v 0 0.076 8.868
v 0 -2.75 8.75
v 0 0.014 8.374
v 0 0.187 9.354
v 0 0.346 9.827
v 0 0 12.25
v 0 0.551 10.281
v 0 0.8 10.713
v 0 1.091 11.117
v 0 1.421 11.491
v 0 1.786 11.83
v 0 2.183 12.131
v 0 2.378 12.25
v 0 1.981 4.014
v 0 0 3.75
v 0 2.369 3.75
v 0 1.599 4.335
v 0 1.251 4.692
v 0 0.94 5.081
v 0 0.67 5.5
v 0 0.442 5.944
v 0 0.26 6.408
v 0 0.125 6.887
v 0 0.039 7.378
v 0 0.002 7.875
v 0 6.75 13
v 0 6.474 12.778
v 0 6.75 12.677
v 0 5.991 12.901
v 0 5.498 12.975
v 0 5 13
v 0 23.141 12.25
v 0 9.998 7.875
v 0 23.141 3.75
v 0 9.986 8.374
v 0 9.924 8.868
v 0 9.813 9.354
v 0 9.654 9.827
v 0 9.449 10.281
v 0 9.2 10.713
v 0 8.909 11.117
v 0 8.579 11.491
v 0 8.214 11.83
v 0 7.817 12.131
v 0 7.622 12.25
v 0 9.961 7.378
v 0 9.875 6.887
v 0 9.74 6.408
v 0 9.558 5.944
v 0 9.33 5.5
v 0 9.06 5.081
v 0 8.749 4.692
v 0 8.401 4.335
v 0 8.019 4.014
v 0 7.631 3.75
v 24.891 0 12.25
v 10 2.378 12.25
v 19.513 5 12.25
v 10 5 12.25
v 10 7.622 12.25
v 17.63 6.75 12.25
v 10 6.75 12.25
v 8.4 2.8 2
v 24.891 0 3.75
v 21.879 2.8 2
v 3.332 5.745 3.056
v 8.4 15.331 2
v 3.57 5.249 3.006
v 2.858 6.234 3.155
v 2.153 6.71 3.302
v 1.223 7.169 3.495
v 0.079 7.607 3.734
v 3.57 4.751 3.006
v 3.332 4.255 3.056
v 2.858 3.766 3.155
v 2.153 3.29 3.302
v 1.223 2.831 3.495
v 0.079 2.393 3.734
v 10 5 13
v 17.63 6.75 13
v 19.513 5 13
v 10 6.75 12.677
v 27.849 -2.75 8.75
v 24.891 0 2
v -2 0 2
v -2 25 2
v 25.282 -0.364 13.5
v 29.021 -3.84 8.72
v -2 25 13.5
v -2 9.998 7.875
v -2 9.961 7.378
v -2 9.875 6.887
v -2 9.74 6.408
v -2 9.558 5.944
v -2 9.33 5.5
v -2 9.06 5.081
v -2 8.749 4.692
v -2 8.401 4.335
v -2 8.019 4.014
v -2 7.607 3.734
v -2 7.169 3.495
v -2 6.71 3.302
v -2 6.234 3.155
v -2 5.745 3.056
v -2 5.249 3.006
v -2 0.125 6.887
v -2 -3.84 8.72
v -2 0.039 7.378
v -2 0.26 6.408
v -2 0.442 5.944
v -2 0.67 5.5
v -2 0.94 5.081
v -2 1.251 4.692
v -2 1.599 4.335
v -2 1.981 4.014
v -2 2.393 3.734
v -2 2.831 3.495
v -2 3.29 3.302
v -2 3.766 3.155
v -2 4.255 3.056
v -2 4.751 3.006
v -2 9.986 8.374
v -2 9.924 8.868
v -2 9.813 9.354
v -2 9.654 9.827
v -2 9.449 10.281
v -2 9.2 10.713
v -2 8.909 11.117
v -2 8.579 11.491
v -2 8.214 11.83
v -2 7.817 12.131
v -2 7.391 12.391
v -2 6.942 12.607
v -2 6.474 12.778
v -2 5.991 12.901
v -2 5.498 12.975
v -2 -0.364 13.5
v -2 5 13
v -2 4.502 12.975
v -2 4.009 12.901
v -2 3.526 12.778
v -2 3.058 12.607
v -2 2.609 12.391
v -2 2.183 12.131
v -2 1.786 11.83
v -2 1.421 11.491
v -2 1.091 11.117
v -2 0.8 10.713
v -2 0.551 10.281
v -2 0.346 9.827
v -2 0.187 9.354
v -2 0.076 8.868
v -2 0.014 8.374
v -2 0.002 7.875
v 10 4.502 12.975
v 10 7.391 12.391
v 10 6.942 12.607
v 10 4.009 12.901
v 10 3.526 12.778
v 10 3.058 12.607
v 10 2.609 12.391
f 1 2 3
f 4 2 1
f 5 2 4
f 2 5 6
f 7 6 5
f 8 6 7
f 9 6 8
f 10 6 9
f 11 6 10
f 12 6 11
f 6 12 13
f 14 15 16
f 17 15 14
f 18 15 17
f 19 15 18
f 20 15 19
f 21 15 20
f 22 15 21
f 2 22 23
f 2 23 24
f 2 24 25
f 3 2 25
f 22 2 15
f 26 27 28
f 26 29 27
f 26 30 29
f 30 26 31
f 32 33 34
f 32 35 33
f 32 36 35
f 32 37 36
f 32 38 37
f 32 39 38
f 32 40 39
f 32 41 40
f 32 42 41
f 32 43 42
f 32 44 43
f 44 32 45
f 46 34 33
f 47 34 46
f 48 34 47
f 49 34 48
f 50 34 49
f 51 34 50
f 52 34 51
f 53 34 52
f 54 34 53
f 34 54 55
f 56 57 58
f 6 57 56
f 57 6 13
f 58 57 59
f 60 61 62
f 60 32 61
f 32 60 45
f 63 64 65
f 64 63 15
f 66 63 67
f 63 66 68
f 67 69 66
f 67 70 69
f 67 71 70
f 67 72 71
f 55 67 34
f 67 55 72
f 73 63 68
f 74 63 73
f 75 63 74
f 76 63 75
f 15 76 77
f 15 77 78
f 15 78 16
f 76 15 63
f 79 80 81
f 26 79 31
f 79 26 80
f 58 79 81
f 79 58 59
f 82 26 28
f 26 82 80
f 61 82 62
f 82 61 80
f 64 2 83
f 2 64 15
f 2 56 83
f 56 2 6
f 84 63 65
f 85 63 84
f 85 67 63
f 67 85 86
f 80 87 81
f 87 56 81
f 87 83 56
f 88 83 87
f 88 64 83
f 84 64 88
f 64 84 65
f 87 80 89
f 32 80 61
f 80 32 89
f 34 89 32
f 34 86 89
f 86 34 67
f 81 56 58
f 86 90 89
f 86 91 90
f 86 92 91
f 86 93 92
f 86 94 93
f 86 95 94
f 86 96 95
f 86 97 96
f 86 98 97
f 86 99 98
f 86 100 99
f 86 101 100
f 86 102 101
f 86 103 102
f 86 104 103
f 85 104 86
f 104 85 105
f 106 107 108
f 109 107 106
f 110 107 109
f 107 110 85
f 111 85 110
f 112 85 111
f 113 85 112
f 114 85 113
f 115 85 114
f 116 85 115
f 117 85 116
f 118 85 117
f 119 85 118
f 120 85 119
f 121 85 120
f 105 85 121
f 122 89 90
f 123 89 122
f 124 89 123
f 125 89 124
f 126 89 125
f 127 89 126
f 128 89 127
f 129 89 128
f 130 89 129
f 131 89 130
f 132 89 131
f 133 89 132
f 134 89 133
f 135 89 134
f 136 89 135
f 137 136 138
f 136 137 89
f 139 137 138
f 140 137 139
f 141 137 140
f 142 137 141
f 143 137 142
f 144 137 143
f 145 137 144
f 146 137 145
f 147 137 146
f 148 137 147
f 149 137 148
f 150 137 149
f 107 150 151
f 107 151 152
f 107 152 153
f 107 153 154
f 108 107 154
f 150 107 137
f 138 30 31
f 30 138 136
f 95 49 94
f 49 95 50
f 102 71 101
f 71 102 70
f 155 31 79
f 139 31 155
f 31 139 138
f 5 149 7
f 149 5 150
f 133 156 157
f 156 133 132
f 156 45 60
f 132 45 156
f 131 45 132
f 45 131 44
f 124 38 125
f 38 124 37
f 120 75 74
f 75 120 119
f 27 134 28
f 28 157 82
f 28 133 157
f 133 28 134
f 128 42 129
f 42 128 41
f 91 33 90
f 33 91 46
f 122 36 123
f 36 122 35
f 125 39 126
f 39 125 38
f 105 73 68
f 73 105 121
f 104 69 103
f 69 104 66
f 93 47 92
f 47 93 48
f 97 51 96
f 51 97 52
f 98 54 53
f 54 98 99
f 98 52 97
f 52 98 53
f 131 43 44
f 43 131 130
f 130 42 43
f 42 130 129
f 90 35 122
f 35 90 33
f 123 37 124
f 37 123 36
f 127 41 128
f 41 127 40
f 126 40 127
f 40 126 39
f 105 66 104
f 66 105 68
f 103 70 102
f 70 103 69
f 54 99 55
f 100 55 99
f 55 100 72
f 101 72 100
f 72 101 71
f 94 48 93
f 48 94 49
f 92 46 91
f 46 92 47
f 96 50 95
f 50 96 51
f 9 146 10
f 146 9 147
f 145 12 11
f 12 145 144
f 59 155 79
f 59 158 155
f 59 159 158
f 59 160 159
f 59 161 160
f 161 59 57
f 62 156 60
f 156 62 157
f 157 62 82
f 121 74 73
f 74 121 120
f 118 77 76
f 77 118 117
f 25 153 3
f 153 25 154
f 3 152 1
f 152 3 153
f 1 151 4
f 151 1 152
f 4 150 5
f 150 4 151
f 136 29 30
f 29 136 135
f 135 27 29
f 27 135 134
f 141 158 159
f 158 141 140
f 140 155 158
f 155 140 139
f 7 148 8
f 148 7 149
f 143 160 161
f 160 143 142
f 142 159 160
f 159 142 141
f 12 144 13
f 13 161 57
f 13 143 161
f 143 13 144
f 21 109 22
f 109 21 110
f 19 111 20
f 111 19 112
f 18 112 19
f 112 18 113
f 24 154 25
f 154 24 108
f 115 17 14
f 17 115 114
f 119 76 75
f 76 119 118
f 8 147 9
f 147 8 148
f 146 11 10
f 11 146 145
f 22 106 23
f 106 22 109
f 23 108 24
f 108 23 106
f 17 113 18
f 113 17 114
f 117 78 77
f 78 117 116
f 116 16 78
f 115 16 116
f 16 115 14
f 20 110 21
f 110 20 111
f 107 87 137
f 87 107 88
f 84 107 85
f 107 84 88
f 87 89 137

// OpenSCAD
$fs = 0.5;
$fa = 1;

exaggeration = 0.5;

bot_thick_z = 12 + exaggeration / 2;
to_infinity = 40;
triangle_inset_y = 6;
triangle_inset_x = 18;
triangle_height_z = 4 - exaggeration / 2;
rubber_stopper_x = 20;
rubber_stopper_y = 1.5 + exaggeration / 2;
rubber_stopper_z = 0.5 + exaggeration / 2;
rubber_stopper_inset_y = 5;
triangle_back_apex_height_above_top = 5;
triangle_back_extension = 2.5 + exaggeration / 2;
port_height_z = bot_thick_z - triangle_height_z - exaggeration;
power_inset_y = 5;
power_plug_radius_addition = 0.75;
clip_margin = 2;

//color([0.7, 0.7, 0.7])
//laptop();



difference() {
    clip_positive();
    laptop();
    
        // Power plug reservation
        translate([10, power_inset_y, port_height_z])
        rotate([0, -90, 0])
        cylinder(r=(bot_thick_z - triangle_height_z) / 2 + power_plug_radius_addition, h=30);
    
    // Top shave
    translate([-5, -3, 10])
rotate([0, 90, 0])
linear_extrude(40)
polygon(points=[[-4, -5], [-4, 3], [7, -5]]);

    // Bottom shave
translate([-5, -3, 7])
rotate([0, 90, 0])
linear_extrude(40)
polygon(points=[[5, -5], [5, 3], [-9, -5]]);
    
    // top z shave
    translate([0, 0, 16])
    cube([100, 100, 5], center=true);

}

module laptop() {
    union() {
        // The body with taper cuts
        difference() {
            
            // The main block
            laptop_principal();
            
            // The cut on the bottom back of the laptop
            translate([0, 0, triangle_height_z])
            rotate([0, 90, 0])
            triangle([triangle_height_z, triangle_inset_y, to_infinity]);
            
            // The cut on the bottom right of the laptop
            mirror([1, 0, 0])
            translate([0, 0, triangle_height_z])
            rotate([0, 90, 90])
            triangle([triangle_height_z, triangle_inset_x, to_infinity]);
        }
        
        // The rubber stopper on top
        translate([0, rubber_stopper_inset_y, bot_thick_z])
        cube([rubber_stopper_x, rubber_stopper_y, rubber_stopper_z]);
        
        // USB-A reservation
        translate([0, 26.5, port_height_z - 4])
        mirror([1, 0, 0])
        cube([10, 13, 8]);
        
        // USB-C reservation
        
        // Triangle back
        rotate([0, 90, 0])
        linear_extrude(to_infinity)
        polygon(points=[[-triangle_height_z, 0], [-bot_thick_z, 0], [-triangle_height_z - triangle_back_apex_height_above_top, -triangle_back_extension]]);
    }
        
}

module laptop_principal() {
    cube([to_infinity, to_infinity, bot_thick_z]);
}

module clip_positive() {
    translate([0, 0, clip_margin])
    linear_extrude(bot_thick_z)
    polygon(points=[[-clip_margin, -triangle_back_extension - clip_margin], [30, -triangle_back_extension - clip_margin], [-clip_margin, 25]]);
}

module triangle(dims) {
    linear_extrude(dims[2])
    polygon(points=[[0, 0], [dims[0], 0], [dims[0], dims[1]]]);
}
